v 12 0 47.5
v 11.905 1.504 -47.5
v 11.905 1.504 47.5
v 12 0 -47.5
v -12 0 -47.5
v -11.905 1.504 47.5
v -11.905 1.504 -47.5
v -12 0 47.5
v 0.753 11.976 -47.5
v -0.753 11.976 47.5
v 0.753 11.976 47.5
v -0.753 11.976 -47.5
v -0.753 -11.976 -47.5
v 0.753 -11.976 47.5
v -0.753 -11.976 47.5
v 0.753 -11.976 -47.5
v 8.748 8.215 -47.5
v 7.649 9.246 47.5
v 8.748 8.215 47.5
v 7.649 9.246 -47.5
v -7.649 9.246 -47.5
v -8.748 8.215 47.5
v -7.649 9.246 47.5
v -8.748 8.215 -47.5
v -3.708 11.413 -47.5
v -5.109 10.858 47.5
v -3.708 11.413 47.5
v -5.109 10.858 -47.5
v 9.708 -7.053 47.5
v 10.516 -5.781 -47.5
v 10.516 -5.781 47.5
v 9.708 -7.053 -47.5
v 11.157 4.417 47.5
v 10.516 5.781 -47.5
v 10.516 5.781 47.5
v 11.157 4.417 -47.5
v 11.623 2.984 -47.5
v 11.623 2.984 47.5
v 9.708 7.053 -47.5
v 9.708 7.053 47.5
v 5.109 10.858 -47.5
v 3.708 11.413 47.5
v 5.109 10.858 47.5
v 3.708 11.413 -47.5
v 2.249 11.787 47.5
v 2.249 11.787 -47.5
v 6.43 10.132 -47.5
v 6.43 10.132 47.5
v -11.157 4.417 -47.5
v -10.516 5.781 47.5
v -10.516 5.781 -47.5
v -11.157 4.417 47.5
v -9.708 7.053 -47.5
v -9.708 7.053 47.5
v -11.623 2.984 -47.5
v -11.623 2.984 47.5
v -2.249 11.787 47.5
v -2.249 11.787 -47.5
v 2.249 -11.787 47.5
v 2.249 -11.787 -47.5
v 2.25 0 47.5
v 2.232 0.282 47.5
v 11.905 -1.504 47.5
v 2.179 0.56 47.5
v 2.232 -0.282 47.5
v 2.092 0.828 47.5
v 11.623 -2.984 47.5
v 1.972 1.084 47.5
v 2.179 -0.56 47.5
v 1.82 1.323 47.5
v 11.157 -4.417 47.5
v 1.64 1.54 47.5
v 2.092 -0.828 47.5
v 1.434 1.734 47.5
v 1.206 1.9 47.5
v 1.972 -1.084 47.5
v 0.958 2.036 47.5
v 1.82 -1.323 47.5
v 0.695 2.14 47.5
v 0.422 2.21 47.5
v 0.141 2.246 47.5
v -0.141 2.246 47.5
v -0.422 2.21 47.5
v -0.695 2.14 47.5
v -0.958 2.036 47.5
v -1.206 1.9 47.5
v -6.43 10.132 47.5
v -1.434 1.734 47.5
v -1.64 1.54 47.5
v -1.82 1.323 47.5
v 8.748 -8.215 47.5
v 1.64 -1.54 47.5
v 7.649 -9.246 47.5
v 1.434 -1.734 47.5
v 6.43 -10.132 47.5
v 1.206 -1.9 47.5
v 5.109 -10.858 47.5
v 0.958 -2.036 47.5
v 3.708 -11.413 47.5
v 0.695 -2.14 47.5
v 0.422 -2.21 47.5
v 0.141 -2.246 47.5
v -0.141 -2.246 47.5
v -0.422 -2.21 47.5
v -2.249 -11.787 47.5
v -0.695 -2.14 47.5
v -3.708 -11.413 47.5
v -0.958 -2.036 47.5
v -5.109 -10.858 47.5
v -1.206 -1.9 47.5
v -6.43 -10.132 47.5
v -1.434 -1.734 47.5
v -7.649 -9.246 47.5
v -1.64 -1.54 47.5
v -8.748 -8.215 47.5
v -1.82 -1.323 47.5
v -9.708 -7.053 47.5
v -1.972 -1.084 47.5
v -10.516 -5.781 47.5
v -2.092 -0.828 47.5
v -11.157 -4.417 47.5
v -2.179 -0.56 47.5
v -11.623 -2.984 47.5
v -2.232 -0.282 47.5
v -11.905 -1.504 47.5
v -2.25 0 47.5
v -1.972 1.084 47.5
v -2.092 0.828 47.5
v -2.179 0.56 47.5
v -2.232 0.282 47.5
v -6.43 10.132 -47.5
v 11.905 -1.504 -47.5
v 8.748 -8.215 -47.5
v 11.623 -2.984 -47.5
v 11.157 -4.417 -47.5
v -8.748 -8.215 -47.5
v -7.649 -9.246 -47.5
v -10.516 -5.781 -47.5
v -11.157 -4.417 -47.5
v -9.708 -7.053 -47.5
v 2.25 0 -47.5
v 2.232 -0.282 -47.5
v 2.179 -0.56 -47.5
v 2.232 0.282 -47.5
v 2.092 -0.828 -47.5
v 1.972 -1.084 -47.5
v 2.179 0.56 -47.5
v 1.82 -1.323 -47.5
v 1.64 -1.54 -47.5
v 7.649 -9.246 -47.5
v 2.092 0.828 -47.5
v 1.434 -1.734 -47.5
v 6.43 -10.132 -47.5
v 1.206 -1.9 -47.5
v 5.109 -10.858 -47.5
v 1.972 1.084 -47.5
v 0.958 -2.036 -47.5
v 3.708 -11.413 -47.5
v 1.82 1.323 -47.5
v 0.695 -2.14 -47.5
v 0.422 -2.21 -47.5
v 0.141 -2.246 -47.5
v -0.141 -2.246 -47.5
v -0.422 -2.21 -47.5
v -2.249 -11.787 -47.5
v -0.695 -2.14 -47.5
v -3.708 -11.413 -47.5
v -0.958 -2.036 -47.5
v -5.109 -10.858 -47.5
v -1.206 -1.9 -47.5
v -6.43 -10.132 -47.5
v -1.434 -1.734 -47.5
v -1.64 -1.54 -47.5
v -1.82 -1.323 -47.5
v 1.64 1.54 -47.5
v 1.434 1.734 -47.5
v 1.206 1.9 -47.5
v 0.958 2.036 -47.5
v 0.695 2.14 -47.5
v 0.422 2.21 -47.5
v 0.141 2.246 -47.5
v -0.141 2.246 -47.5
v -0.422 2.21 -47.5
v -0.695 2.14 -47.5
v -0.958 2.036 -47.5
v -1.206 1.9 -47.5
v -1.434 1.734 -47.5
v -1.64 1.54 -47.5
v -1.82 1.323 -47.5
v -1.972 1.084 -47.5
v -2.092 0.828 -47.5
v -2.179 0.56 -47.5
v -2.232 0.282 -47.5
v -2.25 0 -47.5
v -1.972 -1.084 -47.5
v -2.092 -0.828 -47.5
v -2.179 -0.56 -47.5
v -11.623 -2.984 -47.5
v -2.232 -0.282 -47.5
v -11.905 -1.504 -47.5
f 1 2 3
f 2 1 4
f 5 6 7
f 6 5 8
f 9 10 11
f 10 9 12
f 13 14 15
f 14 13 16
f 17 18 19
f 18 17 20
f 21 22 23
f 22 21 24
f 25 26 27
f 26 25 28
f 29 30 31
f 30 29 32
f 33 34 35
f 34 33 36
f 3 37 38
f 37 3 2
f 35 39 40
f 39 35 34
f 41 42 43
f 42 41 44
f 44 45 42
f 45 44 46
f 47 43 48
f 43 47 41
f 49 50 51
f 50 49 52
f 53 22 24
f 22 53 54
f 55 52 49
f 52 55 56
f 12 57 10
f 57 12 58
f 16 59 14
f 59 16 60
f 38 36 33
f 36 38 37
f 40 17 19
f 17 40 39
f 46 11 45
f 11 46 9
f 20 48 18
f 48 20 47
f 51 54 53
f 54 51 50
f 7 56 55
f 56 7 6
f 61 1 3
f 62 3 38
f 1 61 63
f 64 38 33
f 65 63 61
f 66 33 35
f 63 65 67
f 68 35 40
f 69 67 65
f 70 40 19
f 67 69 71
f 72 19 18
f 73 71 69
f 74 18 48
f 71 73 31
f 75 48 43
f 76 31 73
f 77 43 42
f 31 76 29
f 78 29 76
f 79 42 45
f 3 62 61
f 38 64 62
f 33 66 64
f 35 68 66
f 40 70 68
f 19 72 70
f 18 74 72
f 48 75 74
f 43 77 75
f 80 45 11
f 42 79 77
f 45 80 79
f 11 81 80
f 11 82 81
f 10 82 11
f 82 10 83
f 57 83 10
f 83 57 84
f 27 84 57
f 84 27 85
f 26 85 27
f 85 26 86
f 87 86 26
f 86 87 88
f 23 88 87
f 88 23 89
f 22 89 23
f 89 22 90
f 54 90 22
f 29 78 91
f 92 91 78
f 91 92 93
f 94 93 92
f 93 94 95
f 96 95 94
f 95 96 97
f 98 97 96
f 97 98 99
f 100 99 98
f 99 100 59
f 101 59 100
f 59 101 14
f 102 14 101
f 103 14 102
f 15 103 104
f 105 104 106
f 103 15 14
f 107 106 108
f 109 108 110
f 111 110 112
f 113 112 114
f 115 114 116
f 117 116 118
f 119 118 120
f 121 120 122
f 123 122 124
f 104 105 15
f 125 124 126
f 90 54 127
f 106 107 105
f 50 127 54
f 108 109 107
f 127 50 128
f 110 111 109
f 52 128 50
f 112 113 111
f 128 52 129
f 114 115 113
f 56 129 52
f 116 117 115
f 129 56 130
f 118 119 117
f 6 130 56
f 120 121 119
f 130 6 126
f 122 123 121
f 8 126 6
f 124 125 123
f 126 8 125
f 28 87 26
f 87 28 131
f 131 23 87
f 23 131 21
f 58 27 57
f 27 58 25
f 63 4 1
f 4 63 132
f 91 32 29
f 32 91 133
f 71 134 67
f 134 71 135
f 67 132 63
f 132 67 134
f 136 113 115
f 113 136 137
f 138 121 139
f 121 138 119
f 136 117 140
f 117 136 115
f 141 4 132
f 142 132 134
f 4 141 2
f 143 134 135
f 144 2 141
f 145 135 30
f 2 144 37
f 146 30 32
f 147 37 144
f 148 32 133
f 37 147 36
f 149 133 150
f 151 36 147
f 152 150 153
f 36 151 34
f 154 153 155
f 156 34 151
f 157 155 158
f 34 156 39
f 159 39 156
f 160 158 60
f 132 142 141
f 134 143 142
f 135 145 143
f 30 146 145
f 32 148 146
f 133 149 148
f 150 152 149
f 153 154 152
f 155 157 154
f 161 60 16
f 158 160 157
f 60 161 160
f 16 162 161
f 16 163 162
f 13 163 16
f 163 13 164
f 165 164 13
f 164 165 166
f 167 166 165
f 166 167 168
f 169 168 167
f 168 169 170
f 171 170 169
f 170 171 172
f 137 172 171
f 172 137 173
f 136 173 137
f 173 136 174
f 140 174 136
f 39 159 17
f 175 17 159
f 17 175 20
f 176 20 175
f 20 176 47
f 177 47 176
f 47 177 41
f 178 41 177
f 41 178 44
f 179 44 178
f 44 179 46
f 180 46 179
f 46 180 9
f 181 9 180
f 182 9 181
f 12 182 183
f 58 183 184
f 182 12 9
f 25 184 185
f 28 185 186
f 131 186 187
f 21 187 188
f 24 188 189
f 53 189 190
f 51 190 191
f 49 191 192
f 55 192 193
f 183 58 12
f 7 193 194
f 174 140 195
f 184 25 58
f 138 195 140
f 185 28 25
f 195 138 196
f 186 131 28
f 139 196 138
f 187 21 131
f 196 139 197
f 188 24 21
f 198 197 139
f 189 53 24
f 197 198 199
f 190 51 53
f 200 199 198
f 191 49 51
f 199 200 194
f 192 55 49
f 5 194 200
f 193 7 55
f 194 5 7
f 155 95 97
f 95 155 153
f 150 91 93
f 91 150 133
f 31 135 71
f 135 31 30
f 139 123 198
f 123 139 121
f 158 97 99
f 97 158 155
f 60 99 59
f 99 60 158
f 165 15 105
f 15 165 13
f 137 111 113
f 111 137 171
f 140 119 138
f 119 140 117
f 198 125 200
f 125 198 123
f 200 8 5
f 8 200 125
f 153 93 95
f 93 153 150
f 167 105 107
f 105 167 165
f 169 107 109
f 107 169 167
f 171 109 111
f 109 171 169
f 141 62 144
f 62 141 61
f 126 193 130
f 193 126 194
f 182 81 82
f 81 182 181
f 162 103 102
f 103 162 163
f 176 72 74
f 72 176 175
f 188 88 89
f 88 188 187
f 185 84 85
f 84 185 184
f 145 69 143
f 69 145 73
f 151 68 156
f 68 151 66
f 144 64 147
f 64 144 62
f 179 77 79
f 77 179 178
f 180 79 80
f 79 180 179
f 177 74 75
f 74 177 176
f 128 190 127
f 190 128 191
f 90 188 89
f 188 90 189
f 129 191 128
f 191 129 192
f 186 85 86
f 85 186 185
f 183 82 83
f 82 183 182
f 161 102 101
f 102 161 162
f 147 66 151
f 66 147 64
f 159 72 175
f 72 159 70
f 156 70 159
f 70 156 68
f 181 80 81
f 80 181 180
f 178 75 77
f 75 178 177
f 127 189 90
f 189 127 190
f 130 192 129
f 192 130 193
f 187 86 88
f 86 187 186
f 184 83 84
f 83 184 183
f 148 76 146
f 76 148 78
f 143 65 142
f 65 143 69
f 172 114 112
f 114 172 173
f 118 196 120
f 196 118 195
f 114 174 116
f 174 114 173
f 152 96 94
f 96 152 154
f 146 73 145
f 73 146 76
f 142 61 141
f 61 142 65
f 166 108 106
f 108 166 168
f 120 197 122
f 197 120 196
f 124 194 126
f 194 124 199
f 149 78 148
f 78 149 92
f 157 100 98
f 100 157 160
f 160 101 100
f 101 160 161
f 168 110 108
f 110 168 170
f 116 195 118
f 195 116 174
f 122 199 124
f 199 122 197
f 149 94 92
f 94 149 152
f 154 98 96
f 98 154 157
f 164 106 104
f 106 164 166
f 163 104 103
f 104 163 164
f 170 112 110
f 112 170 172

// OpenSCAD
$fn = 50;


difference() {
	union() {
		translate(v = [0, 0, -47.5000000000]) {
			cylinder(h = 95, r = 12.0000000000);
		}
	}
	union() {
		translate(v = [0, 0, -100.0000000000]) {
			cylinder(h = 200, r = 2.2500000000);
		}
	}
}
